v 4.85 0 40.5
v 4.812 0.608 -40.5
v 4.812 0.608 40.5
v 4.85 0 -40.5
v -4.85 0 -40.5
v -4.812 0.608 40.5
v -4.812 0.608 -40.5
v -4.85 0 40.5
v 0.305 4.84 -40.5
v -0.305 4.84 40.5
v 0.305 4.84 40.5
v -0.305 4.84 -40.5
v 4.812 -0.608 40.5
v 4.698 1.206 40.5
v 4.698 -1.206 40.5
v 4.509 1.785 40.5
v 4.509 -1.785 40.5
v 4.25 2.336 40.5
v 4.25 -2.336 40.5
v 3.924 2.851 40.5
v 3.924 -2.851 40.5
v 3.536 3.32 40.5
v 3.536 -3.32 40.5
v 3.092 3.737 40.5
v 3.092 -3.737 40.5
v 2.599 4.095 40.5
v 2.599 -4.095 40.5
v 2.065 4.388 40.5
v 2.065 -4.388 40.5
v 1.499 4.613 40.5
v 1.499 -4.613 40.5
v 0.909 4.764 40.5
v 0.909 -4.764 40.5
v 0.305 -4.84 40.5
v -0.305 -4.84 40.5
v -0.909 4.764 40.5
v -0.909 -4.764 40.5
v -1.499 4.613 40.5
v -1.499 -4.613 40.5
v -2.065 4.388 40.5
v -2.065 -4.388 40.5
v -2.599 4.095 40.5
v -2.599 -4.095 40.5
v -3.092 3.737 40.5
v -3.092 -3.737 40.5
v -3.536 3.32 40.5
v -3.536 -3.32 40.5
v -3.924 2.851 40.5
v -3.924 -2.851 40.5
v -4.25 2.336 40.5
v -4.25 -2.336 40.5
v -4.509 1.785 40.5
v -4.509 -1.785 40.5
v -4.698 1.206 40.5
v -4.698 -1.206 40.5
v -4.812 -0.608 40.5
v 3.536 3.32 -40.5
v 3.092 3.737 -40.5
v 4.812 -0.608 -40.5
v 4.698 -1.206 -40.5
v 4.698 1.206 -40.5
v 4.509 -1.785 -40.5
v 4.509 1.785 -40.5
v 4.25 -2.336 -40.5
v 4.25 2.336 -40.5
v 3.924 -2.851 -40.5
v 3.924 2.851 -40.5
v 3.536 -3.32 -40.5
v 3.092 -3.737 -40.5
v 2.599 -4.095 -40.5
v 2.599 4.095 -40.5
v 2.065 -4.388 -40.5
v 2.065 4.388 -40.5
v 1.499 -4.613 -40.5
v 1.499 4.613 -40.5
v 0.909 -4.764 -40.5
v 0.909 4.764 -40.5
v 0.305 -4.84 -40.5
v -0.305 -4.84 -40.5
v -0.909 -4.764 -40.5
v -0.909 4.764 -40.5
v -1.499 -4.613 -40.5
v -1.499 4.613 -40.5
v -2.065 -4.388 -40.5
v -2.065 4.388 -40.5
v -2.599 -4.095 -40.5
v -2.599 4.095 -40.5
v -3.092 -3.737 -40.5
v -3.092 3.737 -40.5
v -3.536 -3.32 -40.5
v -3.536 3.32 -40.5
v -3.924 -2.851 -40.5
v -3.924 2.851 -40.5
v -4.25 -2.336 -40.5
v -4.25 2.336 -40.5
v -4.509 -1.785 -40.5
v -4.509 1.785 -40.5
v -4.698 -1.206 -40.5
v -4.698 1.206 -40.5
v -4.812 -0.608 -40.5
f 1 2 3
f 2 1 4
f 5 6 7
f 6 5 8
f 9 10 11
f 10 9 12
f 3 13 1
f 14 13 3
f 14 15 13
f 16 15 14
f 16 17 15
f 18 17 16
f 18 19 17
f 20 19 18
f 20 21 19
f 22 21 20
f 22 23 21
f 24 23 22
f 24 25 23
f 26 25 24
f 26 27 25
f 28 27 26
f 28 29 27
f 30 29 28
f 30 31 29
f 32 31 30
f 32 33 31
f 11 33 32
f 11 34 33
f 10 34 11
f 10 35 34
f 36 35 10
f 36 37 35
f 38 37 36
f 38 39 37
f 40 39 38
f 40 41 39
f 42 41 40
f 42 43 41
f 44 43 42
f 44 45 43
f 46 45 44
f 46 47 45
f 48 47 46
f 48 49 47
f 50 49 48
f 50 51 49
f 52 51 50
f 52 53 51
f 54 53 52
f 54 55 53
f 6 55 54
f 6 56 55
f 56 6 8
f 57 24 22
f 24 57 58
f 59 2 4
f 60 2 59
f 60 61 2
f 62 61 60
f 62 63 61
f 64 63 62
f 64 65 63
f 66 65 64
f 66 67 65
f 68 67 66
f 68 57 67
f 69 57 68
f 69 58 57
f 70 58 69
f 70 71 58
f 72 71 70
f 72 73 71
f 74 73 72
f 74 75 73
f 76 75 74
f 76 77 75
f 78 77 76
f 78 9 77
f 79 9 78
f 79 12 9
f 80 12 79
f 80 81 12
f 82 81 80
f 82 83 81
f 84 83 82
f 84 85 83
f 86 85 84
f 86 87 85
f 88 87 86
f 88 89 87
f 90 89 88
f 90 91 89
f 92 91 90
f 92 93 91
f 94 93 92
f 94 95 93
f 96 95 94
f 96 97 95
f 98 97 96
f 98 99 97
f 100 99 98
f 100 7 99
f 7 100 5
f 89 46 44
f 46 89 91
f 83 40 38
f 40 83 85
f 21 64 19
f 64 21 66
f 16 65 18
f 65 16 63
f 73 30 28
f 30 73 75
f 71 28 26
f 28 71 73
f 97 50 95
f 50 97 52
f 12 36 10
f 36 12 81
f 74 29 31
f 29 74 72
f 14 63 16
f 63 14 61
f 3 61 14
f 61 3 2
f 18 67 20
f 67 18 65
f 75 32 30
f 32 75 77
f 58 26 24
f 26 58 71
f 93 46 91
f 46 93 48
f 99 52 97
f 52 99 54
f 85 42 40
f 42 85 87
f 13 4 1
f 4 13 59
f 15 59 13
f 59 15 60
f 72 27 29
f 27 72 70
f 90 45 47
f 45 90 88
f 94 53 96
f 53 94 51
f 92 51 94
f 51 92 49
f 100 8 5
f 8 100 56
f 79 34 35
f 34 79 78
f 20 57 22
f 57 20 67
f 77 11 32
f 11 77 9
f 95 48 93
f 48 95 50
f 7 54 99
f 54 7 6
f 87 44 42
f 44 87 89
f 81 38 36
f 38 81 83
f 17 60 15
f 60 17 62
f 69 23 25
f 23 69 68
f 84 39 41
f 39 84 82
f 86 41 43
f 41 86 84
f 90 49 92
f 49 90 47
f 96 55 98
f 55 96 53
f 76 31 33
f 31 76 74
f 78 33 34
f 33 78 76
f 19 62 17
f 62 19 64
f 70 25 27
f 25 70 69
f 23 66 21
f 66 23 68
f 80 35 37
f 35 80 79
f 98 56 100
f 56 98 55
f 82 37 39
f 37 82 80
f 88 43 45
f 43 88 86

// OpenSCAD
$fn = 50;


difference() {
	union() {
		translate(v = [0, 0, -40.5000000000]) {
			cylinder(h = 81, r = 4.8500000000);
		}
	}
	union() {
		translate(v = [0, 0, -100.0000000000]) {
			cylinder(h = 200, r = 0);
		}
	}
}
